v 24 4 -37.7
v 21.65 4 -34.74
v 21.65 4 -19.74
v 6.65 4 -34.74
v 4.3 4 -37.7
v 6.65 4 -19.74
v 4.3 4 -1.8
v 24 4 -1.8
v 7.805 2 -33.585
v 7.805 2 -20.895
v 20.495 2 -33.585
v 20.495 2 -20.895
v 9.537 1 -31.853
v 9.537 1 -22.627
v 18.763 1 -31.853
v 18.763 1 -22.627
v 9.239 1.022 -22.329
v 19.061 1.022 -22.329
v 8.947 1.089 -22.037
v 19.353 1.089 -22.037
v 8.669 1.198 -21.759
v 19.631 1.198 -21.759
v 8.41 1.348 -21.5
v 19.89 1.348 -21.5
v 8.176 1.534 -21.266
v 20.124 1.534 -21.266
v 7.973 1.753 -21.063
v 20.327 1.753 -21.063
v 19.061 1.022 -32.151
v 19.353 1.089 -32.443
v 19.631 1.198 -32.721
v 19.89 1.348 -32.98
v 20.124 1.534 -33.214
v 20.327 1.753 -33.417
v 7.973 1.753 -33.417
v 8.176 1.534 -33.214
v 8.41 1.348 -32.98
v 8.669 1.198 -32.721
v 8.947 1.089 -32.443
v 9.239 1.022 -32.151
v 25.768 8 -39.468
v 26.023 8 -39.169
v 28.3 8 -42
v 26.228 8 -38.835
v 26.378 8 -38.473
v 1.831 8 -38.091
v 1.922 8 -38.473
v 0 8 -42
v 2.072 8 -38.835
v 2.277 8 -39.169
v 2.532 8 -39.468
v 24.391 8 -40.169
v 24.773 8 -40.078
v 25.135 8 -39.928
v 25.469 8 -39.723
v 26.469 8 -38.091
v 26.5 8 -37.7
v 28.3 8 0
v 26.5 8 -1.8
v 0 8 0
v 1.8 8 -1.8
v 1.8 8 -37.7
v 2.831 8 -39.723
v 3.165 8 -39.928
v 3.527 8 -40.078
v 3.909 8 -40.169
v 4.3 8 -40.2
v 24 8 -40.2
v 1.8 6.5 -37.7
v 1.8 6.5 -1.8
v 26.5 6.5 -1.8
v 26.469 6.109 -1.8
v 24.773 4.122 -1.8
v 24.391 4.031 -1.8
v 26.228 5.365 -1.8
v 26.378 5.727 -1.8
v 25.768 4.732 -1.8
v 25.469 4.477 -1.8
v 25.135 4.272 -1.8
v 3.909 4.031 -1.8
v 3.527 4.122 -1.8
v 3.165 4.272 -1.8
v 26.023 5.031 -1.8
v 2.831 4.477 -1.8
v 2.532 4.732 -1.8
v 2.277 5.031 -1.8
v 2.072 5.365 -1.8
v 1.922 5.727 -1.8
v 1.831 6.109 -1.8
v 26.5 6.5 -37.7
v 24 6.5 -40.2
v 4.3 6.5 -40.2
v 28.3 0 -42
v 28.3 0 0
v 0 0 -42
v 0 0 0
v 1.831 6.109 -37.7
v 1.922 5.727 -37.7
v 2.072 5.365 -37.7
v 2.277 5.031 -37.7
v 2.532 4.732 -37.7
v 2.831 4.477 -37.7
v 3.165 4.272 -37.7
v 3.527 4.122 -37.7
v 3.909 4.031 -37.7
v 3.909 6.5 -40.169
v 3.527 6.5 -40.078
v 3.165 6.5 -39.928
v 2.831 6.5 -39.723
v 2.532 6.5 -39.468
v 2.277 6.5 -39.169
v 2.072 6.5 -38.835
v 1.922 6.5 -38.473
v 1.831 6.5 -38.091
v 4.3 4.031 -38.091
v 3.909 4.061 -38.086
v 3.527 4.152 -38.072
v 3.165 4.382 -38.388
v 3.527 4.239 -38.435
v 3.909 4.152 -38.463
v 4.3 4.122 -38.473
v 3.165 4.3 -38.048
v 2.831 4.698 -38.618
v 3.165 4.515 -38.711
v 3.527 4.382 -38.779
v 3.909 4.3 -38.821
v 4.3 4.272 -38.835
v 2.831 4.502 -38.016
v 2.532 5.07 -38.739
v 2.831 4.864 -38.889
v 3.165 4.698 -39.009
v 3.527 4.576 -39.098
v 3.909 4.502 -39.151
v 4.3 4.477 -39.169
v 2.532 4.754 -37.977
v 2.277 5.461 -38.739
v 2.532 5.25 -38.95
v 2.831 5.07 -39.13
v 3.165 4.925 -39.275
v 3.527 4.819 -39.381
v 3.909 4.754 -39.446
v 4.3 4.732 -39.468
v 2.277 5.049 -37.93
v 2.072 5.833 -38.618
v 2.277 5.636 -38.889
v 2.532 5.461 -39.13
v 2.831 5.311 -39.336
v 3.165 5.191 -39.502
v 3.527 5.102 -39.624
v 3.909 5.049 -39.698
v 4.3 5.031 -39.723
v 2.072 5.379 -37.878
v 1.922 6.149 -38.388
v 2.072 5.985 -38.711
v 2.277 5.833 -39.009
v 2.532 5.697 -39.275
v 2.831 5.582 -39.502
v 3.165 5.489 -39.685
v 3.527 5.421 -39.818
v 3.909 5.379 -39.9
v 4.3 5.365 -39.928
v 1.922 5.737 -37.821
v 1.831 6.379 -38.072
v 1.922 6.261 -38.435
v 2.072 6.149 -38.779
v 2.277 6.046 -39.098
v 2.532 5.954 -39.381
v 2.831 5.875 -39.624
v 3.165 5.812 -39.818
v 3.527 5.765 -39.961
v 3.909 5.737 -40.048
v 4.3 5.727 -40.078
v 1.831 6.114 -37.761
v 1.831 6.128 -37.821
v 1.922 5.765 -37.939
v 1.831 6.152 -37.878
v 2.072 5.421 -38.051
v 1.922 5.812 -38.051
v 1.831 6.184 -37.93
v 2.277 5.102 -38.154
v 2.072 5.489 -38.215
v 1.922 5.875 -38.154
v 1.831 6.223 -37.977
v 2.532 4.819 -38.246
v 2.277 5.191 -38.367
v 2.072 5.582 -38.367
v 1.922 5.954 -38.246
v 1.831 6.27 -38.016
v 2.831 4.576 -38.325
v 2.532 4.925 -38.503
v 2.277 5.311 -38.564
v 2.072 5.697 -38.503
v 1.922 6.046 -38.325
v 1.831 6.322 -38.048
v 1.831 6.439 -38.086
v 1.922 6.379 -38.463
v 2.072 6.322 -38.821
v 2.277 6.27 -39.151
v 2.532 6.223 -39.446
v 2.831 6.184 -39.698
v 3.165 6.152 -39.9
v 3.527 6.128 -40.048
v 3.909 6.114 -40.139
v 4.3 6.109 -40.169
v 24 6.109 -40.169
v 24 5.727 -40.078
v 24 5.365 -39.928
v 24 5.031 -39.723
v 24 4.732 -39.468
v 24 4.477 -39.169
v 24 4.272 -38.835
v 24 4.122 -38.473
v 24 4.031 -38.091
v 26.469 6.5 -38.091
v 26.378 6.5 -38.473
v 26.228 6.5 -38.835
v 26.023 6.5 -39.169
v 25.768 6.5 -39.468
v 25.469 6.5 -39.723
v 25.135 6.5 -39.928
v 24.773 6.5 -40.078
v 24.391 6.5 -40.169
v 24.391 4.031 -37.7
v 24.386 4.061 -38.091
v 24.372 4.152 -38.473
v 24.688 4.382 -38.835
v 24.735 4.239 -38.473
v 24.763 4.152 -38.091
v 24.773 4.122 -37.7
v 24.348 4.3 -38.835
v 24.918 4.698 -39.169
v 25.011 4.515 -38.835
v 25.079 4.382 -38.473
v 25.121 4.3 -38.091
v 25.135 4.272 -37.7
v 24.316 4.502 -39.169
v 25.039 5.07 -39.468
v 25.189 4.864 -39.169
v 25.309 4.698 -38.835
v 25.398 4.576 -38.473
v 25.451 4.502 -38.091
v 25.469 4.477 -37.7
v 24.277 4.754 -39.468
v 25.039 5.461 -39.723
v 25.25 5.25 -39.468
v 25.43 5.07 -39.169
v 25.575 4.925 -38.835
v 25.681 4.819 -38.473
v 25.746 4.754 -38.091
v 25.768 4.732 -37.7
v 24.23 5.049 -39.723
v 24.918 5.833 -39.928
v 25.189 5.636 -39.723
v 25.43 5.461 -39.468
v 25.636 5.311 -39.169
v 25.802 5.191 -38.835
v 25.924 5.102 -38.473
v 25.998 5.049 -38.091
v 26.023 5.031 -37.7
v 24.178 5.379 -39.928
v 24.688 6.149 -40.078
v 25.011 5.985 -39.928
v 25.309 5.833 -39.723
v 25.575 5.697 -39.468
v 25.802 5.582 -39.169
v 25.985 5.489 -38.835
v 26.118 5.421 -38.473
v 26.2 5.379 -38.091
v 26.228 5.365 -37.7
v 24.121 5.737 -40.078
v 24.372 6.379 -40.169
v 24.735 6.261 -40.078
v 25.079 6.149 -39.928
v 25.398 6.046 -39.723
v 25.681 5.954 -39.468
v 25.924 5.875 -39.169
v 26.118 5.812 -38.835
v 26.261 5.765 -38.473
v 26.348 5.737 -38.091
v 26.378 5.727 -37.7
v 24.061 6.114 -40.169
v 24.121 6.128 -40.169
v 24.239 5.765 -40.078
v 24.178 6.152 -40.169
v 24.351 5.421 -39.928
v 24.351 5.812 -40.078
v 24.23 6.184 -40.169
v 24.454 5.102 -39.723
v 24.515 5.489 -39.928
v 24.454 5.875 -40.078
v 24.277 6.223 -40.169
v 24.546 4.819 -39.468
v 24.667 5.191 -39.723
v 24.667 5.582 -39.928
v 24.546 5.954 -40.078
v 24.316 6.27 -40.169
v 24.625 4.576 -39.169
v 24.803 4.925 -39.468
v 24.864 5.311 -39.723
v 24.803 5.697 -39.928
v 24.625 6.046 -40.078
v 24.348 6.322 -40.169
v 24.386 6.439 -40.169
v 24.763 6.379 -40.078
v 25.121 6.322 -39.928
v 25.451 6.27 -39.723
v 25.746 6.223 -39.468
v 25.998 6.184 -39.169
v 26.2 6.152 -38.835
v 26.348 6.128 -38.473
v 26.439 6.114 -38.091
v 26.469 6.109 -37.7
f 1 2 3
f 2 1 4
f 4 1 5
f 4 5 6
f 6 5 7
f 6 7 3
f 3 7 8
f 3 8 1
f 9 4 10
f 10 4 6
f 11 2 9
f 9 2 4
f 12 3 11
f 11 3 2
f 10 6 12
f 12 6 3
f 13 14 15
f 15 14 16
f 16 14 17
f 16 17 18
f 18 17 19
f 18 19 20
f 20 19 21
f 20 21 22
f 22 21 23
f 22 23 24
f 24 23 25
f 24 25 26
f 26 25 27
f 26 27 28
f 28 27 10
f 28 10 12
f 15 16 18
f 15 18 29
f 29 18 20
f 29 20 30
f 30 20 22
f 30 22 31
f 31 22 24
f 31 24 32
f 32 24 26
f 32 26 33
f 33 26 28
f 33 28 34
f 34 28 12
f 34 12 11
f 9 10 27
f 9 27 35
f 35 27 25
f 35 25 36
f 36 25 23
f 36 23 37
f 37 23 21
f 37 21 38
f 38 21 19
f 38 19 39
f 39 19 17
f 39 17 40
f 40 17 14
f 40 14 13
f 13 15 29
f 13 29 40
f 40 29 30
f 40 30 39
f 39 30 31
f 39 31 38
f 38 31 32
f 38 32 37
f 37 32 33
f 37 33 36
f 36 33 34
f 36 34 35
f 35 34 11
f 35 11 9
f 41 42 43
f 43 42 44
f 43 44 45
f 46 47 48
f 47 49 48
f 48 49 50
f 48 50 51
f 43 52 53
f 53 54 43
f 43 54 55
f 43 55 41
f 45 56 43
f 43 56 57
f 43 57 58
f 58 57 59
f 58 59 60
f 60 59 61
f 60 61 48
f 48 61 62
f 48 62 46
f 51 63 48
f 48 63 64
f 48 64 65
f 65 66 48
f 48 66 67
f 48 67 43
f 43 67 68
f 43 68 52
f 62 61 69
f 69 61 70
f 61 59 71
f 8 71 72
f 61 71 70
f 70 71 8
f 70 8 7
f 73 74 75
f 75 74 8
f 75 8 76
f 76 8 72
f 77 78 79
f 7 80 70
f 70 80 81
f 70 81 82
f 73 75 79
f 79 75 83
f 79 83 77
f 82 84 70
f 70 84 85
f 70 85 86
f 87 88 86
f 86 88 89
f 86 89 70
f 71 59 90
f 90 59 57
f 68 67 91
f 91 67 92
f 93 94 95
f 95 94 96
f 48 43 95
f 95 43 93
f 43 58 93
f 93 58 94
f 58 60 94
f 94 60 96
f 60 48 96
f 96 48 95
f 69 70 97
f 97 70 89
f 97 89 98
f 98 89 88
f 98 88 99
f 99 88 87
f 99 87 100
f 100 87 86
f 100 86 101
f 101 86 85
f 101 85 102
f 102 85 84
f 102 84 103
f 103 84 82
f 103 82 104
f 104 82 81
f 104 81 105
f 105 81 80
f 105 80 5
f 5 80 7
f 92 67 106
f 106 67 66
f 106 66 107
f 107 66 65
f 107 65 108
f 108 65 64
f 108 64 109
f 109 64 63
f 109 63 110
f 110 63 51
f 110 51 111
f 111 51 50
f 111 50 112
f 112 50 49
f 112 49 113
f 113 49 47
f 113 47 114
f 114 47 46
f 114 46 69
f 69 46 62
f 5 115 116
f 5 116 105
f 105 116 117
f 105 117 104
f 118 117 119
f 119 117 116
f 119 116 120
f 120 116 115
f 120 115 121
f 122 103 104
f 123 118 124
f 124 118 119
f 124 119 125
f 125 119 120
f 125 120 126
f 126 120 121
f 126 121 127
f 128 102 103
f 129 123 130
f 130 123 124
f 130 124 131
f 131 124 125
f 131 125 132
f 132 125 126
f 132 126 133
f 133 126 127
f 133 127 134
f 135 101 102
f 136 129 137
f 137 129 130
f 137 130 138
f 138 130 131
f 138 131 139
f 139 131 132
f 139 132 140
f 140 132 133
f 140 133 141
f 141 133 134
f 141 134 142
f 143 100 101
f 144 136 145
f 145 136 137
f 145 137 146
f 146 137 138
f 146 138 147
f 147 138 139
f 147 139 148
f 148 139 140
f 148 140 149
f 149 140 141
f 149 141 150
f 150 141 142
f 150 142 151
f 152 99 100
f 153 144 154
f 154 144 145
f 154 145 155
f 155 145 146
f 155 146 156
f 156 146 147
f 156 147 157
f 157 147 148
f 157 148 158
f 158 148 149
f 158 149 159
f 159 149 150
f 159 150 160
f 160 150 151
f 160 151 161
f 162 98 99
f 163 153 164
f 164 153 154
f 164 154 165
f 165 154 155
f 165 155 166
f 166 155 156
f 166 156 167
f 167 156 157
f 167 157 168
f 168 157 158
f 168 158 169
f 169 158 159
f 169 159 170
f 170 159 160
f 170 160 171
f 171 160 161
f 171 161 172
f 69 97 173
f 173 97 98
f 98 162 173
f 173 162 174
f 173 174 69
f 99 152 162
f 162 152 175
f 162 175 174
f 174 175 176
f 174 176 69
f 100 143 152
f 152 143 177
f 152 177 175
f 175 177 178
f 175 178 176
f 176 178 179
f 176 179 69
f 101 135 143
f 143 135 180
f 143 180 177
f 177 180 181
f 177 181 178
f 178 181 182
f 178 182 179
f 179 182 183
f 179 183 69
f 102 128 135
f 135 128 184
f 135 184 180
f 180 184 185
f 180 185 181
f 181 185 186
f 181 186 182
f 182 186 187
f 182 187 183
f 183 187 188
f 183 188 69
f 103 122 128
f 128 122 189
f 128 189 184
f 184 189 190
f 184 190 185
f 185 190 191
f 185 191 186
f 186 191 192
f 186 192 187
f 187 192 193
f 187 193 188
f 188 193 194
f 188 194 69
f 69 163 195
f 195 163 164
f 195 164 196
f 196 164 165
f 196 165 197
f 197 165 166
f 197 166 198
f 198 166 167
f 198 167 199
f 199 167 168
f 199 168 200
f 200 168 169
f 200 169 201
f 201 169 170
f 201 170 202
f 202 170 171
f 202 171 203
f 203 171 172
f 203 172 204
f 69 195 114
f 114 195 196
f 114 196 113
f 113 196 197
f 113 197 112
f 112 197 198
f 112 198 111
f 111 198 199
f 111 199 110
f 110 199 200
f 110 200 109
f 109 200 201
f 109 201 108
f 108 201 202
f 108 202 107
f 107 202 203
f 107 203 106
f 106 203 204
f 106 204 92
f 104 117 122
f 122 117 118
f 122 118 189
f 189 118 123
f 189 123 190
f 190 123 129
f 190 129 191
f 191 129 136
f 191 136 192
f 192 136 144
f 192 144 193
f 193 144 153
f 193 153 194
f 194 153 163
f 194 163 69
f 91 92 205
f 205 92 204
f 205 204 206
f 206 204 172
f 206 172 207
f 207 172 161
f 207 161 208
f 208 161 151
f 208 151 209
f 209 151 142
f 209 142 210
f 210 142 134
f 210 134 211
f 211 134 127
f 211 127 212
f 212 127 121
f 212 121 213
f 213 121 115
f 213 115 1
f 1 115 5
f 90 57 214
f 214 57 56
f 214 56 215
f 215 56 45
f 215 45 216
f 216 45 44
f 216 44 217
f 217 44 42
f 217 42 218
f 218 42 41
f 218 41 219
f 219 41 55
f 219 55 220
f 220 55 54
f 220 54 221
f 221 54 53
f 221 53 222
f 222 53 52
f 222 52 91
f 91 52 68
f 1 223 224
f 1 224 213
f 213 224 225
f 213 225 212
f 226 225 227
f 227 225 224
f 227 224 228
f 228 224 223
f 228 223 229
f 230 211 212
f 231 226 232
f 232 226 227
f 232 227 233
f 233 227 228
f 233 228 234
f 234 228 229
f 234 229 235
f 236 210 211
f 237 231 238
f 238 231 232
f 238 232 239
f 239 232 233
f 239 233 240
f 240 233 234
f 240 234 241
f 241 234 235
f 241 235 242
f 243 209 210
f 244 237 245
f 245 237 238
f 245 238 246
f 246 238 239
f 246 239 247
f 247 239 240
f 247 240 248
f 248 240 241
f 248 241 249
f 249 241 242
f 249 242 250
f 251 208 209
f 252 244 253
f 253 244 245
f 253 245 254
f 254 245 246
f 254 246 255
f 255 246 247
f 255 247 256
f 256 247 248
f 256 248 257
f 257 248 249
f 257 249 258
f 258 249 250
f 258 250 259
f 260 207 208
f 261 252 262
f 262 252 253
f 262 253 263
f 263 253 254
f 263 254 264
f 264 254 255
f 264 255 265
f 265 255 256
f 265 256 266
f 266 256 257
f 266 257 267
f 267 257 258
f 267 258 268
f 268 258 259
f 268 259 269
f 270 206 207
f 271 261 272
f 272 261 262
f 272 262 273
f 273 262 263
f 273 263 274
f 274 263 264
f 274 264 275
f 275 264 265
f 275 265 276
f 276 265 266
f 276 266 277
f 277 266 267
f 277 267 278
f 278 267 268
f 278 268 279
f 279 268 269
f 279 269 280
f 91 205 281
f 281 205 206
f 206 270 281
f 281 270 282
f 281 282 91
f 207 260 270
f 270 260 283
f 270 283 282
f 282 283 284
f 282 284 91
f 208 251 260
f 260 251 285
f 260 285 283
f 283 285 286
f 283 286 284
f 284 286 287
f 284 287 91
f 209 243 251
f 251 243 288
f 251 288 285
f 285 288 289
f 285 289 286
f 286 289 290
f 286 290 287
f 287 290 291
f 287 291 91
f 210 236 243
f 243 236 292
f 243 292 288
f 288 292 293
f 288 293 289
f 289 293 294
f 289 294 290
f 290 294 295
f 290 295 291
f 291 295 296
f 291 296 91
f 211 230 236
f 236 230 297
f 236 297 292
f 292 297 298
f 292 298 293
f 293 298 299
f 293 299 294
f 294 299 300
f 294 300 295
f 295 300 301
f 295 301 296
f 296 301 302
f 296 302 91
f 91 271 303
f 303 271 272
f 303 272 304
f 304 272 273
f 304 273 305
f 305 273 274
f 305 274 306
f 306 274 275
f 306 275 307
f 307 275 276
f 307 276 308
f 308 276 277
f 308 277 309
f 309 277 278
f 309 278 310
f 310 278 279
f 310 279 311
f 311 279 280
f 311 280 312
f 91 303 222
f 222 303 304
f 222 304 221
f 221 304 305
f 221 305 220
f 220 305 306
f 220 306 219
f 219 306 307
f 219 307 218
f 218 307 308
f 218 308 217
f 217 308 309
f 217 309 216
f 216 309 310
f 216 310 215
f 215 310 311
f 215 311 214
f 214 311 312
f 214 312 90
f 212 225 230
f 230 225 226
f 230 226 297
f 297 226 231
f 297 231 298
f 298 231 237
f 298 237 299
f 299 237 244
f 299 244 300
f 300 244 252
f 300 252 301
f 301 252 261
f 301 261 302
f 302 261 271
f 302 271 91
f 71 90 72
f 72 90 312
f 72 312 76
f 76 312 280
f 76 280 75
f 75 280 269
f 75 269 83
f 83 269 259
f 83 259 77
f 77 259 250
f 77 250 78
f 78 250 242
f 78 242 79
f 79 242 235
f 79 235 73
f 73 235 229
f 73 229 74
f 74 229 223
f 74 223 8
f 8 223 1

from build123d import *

# Parameters (mm, degrees)
SKETCH1_W           = 28.3
SKETCH1_H           = 42
BOSS_EXTRUDE1_DEPTH = 4
SKETCH2_W           = 15
SKETCH2_H           = 15
CUT_EXTRUDE1_DEPTH  = 3
DRAFT1_ANGLE        = 30
FILLET1_R           = 2
SKETCH4_W           = 28.3
SKETCH4_H           = 42
SKETCH4_W_2         = 24.7
SKETCH4_H_2         = 38.4
BOSS_EXTRUDE2_DEPTH = 4
FILLET2_R           = 2.5


with BuildPart() as part:
    # Sketch1 → Boss-Extrude1 (new body)
    with BuildSketch(Plane(origin=(0, 0, 0), x_dir=(1, 0, 0), z_dir=(0, 1, 0))):
        with Locations((14.15, 21)):
            Rectangle(SKETCH1_W, SKETCH1_H)
    extrude(amount=BOSS_EXTRUDE1_DEPTH)

    # Sketch2 → Cut-Extrude1 (cut)
    with BuildSketch(Plane(origin=(0, 4, 0), x_dir=(1, 0, 0), z_dir=(0, 1, 0))):
        with Locations((14.15, 27.24)):
            Rectangle(SKETCH2_W, SKETCH2_H)
    extrude(amount=-CUT_EXTRUDE1_DEPTH, mode=Mode.SUBTRACT)

    # Draft1
    draft1_faces = [part.faces().sort_by_distance(p)[0] for p in [
        (6.65, 2.5, -27.24),
        (14.15, 2.5, -19.74),
        (21.65, 2.5, -27.24),
        (14.15, 2.5, -34.74),
    ]]
    draft(draft1_faces, Plane.ZX.offset(4), DRAFT1_ANGLE)

    # Fillet1
    fillet1_edges = [part.edges().sort_by_distance(p)[0] for p in [
        (8.382050808, 1, -27.24),
        (14.15, 1, -33.007949192),
        (19.917949192, 1, -27.24),
        (14.15, 1, -21.472050808),
    ]]
    fillet(fillet1_edges, radius=FILLET1_R)

    # Sketch4 → Boss-Extrude2 (add)
    with BuildSketch(Plane(origin=(0, 4, 0), x_dir=(1, 0, 0), z_dir=(0, 1, 0))):
        with Locations((14.15, 21)):
            Rectangle(SKETCH4_W, SKETCH4_H)
        with Locations((14.15, 21)):
            Rectangle(SKETCH4_W_2, SKETCH4_H_2, mode=Mode.SUBTRACT)
    extrude(amount=BOSS_EXTRUDE2_DEPTH)

    # Fillet2
    fillet2_edges = [part.edges().sort_by_distance(p)[0] for p in [
        (1.8, 4, -21),
        (26.5, 4, -21),
        (14.15, 4, -40.2),
        (26.5, 6, -40.2),
        (1.8, 6, -40.2),
    ]]
    fillet(fillet2_edges, radius=FILLET2_R)


solid = part.part
